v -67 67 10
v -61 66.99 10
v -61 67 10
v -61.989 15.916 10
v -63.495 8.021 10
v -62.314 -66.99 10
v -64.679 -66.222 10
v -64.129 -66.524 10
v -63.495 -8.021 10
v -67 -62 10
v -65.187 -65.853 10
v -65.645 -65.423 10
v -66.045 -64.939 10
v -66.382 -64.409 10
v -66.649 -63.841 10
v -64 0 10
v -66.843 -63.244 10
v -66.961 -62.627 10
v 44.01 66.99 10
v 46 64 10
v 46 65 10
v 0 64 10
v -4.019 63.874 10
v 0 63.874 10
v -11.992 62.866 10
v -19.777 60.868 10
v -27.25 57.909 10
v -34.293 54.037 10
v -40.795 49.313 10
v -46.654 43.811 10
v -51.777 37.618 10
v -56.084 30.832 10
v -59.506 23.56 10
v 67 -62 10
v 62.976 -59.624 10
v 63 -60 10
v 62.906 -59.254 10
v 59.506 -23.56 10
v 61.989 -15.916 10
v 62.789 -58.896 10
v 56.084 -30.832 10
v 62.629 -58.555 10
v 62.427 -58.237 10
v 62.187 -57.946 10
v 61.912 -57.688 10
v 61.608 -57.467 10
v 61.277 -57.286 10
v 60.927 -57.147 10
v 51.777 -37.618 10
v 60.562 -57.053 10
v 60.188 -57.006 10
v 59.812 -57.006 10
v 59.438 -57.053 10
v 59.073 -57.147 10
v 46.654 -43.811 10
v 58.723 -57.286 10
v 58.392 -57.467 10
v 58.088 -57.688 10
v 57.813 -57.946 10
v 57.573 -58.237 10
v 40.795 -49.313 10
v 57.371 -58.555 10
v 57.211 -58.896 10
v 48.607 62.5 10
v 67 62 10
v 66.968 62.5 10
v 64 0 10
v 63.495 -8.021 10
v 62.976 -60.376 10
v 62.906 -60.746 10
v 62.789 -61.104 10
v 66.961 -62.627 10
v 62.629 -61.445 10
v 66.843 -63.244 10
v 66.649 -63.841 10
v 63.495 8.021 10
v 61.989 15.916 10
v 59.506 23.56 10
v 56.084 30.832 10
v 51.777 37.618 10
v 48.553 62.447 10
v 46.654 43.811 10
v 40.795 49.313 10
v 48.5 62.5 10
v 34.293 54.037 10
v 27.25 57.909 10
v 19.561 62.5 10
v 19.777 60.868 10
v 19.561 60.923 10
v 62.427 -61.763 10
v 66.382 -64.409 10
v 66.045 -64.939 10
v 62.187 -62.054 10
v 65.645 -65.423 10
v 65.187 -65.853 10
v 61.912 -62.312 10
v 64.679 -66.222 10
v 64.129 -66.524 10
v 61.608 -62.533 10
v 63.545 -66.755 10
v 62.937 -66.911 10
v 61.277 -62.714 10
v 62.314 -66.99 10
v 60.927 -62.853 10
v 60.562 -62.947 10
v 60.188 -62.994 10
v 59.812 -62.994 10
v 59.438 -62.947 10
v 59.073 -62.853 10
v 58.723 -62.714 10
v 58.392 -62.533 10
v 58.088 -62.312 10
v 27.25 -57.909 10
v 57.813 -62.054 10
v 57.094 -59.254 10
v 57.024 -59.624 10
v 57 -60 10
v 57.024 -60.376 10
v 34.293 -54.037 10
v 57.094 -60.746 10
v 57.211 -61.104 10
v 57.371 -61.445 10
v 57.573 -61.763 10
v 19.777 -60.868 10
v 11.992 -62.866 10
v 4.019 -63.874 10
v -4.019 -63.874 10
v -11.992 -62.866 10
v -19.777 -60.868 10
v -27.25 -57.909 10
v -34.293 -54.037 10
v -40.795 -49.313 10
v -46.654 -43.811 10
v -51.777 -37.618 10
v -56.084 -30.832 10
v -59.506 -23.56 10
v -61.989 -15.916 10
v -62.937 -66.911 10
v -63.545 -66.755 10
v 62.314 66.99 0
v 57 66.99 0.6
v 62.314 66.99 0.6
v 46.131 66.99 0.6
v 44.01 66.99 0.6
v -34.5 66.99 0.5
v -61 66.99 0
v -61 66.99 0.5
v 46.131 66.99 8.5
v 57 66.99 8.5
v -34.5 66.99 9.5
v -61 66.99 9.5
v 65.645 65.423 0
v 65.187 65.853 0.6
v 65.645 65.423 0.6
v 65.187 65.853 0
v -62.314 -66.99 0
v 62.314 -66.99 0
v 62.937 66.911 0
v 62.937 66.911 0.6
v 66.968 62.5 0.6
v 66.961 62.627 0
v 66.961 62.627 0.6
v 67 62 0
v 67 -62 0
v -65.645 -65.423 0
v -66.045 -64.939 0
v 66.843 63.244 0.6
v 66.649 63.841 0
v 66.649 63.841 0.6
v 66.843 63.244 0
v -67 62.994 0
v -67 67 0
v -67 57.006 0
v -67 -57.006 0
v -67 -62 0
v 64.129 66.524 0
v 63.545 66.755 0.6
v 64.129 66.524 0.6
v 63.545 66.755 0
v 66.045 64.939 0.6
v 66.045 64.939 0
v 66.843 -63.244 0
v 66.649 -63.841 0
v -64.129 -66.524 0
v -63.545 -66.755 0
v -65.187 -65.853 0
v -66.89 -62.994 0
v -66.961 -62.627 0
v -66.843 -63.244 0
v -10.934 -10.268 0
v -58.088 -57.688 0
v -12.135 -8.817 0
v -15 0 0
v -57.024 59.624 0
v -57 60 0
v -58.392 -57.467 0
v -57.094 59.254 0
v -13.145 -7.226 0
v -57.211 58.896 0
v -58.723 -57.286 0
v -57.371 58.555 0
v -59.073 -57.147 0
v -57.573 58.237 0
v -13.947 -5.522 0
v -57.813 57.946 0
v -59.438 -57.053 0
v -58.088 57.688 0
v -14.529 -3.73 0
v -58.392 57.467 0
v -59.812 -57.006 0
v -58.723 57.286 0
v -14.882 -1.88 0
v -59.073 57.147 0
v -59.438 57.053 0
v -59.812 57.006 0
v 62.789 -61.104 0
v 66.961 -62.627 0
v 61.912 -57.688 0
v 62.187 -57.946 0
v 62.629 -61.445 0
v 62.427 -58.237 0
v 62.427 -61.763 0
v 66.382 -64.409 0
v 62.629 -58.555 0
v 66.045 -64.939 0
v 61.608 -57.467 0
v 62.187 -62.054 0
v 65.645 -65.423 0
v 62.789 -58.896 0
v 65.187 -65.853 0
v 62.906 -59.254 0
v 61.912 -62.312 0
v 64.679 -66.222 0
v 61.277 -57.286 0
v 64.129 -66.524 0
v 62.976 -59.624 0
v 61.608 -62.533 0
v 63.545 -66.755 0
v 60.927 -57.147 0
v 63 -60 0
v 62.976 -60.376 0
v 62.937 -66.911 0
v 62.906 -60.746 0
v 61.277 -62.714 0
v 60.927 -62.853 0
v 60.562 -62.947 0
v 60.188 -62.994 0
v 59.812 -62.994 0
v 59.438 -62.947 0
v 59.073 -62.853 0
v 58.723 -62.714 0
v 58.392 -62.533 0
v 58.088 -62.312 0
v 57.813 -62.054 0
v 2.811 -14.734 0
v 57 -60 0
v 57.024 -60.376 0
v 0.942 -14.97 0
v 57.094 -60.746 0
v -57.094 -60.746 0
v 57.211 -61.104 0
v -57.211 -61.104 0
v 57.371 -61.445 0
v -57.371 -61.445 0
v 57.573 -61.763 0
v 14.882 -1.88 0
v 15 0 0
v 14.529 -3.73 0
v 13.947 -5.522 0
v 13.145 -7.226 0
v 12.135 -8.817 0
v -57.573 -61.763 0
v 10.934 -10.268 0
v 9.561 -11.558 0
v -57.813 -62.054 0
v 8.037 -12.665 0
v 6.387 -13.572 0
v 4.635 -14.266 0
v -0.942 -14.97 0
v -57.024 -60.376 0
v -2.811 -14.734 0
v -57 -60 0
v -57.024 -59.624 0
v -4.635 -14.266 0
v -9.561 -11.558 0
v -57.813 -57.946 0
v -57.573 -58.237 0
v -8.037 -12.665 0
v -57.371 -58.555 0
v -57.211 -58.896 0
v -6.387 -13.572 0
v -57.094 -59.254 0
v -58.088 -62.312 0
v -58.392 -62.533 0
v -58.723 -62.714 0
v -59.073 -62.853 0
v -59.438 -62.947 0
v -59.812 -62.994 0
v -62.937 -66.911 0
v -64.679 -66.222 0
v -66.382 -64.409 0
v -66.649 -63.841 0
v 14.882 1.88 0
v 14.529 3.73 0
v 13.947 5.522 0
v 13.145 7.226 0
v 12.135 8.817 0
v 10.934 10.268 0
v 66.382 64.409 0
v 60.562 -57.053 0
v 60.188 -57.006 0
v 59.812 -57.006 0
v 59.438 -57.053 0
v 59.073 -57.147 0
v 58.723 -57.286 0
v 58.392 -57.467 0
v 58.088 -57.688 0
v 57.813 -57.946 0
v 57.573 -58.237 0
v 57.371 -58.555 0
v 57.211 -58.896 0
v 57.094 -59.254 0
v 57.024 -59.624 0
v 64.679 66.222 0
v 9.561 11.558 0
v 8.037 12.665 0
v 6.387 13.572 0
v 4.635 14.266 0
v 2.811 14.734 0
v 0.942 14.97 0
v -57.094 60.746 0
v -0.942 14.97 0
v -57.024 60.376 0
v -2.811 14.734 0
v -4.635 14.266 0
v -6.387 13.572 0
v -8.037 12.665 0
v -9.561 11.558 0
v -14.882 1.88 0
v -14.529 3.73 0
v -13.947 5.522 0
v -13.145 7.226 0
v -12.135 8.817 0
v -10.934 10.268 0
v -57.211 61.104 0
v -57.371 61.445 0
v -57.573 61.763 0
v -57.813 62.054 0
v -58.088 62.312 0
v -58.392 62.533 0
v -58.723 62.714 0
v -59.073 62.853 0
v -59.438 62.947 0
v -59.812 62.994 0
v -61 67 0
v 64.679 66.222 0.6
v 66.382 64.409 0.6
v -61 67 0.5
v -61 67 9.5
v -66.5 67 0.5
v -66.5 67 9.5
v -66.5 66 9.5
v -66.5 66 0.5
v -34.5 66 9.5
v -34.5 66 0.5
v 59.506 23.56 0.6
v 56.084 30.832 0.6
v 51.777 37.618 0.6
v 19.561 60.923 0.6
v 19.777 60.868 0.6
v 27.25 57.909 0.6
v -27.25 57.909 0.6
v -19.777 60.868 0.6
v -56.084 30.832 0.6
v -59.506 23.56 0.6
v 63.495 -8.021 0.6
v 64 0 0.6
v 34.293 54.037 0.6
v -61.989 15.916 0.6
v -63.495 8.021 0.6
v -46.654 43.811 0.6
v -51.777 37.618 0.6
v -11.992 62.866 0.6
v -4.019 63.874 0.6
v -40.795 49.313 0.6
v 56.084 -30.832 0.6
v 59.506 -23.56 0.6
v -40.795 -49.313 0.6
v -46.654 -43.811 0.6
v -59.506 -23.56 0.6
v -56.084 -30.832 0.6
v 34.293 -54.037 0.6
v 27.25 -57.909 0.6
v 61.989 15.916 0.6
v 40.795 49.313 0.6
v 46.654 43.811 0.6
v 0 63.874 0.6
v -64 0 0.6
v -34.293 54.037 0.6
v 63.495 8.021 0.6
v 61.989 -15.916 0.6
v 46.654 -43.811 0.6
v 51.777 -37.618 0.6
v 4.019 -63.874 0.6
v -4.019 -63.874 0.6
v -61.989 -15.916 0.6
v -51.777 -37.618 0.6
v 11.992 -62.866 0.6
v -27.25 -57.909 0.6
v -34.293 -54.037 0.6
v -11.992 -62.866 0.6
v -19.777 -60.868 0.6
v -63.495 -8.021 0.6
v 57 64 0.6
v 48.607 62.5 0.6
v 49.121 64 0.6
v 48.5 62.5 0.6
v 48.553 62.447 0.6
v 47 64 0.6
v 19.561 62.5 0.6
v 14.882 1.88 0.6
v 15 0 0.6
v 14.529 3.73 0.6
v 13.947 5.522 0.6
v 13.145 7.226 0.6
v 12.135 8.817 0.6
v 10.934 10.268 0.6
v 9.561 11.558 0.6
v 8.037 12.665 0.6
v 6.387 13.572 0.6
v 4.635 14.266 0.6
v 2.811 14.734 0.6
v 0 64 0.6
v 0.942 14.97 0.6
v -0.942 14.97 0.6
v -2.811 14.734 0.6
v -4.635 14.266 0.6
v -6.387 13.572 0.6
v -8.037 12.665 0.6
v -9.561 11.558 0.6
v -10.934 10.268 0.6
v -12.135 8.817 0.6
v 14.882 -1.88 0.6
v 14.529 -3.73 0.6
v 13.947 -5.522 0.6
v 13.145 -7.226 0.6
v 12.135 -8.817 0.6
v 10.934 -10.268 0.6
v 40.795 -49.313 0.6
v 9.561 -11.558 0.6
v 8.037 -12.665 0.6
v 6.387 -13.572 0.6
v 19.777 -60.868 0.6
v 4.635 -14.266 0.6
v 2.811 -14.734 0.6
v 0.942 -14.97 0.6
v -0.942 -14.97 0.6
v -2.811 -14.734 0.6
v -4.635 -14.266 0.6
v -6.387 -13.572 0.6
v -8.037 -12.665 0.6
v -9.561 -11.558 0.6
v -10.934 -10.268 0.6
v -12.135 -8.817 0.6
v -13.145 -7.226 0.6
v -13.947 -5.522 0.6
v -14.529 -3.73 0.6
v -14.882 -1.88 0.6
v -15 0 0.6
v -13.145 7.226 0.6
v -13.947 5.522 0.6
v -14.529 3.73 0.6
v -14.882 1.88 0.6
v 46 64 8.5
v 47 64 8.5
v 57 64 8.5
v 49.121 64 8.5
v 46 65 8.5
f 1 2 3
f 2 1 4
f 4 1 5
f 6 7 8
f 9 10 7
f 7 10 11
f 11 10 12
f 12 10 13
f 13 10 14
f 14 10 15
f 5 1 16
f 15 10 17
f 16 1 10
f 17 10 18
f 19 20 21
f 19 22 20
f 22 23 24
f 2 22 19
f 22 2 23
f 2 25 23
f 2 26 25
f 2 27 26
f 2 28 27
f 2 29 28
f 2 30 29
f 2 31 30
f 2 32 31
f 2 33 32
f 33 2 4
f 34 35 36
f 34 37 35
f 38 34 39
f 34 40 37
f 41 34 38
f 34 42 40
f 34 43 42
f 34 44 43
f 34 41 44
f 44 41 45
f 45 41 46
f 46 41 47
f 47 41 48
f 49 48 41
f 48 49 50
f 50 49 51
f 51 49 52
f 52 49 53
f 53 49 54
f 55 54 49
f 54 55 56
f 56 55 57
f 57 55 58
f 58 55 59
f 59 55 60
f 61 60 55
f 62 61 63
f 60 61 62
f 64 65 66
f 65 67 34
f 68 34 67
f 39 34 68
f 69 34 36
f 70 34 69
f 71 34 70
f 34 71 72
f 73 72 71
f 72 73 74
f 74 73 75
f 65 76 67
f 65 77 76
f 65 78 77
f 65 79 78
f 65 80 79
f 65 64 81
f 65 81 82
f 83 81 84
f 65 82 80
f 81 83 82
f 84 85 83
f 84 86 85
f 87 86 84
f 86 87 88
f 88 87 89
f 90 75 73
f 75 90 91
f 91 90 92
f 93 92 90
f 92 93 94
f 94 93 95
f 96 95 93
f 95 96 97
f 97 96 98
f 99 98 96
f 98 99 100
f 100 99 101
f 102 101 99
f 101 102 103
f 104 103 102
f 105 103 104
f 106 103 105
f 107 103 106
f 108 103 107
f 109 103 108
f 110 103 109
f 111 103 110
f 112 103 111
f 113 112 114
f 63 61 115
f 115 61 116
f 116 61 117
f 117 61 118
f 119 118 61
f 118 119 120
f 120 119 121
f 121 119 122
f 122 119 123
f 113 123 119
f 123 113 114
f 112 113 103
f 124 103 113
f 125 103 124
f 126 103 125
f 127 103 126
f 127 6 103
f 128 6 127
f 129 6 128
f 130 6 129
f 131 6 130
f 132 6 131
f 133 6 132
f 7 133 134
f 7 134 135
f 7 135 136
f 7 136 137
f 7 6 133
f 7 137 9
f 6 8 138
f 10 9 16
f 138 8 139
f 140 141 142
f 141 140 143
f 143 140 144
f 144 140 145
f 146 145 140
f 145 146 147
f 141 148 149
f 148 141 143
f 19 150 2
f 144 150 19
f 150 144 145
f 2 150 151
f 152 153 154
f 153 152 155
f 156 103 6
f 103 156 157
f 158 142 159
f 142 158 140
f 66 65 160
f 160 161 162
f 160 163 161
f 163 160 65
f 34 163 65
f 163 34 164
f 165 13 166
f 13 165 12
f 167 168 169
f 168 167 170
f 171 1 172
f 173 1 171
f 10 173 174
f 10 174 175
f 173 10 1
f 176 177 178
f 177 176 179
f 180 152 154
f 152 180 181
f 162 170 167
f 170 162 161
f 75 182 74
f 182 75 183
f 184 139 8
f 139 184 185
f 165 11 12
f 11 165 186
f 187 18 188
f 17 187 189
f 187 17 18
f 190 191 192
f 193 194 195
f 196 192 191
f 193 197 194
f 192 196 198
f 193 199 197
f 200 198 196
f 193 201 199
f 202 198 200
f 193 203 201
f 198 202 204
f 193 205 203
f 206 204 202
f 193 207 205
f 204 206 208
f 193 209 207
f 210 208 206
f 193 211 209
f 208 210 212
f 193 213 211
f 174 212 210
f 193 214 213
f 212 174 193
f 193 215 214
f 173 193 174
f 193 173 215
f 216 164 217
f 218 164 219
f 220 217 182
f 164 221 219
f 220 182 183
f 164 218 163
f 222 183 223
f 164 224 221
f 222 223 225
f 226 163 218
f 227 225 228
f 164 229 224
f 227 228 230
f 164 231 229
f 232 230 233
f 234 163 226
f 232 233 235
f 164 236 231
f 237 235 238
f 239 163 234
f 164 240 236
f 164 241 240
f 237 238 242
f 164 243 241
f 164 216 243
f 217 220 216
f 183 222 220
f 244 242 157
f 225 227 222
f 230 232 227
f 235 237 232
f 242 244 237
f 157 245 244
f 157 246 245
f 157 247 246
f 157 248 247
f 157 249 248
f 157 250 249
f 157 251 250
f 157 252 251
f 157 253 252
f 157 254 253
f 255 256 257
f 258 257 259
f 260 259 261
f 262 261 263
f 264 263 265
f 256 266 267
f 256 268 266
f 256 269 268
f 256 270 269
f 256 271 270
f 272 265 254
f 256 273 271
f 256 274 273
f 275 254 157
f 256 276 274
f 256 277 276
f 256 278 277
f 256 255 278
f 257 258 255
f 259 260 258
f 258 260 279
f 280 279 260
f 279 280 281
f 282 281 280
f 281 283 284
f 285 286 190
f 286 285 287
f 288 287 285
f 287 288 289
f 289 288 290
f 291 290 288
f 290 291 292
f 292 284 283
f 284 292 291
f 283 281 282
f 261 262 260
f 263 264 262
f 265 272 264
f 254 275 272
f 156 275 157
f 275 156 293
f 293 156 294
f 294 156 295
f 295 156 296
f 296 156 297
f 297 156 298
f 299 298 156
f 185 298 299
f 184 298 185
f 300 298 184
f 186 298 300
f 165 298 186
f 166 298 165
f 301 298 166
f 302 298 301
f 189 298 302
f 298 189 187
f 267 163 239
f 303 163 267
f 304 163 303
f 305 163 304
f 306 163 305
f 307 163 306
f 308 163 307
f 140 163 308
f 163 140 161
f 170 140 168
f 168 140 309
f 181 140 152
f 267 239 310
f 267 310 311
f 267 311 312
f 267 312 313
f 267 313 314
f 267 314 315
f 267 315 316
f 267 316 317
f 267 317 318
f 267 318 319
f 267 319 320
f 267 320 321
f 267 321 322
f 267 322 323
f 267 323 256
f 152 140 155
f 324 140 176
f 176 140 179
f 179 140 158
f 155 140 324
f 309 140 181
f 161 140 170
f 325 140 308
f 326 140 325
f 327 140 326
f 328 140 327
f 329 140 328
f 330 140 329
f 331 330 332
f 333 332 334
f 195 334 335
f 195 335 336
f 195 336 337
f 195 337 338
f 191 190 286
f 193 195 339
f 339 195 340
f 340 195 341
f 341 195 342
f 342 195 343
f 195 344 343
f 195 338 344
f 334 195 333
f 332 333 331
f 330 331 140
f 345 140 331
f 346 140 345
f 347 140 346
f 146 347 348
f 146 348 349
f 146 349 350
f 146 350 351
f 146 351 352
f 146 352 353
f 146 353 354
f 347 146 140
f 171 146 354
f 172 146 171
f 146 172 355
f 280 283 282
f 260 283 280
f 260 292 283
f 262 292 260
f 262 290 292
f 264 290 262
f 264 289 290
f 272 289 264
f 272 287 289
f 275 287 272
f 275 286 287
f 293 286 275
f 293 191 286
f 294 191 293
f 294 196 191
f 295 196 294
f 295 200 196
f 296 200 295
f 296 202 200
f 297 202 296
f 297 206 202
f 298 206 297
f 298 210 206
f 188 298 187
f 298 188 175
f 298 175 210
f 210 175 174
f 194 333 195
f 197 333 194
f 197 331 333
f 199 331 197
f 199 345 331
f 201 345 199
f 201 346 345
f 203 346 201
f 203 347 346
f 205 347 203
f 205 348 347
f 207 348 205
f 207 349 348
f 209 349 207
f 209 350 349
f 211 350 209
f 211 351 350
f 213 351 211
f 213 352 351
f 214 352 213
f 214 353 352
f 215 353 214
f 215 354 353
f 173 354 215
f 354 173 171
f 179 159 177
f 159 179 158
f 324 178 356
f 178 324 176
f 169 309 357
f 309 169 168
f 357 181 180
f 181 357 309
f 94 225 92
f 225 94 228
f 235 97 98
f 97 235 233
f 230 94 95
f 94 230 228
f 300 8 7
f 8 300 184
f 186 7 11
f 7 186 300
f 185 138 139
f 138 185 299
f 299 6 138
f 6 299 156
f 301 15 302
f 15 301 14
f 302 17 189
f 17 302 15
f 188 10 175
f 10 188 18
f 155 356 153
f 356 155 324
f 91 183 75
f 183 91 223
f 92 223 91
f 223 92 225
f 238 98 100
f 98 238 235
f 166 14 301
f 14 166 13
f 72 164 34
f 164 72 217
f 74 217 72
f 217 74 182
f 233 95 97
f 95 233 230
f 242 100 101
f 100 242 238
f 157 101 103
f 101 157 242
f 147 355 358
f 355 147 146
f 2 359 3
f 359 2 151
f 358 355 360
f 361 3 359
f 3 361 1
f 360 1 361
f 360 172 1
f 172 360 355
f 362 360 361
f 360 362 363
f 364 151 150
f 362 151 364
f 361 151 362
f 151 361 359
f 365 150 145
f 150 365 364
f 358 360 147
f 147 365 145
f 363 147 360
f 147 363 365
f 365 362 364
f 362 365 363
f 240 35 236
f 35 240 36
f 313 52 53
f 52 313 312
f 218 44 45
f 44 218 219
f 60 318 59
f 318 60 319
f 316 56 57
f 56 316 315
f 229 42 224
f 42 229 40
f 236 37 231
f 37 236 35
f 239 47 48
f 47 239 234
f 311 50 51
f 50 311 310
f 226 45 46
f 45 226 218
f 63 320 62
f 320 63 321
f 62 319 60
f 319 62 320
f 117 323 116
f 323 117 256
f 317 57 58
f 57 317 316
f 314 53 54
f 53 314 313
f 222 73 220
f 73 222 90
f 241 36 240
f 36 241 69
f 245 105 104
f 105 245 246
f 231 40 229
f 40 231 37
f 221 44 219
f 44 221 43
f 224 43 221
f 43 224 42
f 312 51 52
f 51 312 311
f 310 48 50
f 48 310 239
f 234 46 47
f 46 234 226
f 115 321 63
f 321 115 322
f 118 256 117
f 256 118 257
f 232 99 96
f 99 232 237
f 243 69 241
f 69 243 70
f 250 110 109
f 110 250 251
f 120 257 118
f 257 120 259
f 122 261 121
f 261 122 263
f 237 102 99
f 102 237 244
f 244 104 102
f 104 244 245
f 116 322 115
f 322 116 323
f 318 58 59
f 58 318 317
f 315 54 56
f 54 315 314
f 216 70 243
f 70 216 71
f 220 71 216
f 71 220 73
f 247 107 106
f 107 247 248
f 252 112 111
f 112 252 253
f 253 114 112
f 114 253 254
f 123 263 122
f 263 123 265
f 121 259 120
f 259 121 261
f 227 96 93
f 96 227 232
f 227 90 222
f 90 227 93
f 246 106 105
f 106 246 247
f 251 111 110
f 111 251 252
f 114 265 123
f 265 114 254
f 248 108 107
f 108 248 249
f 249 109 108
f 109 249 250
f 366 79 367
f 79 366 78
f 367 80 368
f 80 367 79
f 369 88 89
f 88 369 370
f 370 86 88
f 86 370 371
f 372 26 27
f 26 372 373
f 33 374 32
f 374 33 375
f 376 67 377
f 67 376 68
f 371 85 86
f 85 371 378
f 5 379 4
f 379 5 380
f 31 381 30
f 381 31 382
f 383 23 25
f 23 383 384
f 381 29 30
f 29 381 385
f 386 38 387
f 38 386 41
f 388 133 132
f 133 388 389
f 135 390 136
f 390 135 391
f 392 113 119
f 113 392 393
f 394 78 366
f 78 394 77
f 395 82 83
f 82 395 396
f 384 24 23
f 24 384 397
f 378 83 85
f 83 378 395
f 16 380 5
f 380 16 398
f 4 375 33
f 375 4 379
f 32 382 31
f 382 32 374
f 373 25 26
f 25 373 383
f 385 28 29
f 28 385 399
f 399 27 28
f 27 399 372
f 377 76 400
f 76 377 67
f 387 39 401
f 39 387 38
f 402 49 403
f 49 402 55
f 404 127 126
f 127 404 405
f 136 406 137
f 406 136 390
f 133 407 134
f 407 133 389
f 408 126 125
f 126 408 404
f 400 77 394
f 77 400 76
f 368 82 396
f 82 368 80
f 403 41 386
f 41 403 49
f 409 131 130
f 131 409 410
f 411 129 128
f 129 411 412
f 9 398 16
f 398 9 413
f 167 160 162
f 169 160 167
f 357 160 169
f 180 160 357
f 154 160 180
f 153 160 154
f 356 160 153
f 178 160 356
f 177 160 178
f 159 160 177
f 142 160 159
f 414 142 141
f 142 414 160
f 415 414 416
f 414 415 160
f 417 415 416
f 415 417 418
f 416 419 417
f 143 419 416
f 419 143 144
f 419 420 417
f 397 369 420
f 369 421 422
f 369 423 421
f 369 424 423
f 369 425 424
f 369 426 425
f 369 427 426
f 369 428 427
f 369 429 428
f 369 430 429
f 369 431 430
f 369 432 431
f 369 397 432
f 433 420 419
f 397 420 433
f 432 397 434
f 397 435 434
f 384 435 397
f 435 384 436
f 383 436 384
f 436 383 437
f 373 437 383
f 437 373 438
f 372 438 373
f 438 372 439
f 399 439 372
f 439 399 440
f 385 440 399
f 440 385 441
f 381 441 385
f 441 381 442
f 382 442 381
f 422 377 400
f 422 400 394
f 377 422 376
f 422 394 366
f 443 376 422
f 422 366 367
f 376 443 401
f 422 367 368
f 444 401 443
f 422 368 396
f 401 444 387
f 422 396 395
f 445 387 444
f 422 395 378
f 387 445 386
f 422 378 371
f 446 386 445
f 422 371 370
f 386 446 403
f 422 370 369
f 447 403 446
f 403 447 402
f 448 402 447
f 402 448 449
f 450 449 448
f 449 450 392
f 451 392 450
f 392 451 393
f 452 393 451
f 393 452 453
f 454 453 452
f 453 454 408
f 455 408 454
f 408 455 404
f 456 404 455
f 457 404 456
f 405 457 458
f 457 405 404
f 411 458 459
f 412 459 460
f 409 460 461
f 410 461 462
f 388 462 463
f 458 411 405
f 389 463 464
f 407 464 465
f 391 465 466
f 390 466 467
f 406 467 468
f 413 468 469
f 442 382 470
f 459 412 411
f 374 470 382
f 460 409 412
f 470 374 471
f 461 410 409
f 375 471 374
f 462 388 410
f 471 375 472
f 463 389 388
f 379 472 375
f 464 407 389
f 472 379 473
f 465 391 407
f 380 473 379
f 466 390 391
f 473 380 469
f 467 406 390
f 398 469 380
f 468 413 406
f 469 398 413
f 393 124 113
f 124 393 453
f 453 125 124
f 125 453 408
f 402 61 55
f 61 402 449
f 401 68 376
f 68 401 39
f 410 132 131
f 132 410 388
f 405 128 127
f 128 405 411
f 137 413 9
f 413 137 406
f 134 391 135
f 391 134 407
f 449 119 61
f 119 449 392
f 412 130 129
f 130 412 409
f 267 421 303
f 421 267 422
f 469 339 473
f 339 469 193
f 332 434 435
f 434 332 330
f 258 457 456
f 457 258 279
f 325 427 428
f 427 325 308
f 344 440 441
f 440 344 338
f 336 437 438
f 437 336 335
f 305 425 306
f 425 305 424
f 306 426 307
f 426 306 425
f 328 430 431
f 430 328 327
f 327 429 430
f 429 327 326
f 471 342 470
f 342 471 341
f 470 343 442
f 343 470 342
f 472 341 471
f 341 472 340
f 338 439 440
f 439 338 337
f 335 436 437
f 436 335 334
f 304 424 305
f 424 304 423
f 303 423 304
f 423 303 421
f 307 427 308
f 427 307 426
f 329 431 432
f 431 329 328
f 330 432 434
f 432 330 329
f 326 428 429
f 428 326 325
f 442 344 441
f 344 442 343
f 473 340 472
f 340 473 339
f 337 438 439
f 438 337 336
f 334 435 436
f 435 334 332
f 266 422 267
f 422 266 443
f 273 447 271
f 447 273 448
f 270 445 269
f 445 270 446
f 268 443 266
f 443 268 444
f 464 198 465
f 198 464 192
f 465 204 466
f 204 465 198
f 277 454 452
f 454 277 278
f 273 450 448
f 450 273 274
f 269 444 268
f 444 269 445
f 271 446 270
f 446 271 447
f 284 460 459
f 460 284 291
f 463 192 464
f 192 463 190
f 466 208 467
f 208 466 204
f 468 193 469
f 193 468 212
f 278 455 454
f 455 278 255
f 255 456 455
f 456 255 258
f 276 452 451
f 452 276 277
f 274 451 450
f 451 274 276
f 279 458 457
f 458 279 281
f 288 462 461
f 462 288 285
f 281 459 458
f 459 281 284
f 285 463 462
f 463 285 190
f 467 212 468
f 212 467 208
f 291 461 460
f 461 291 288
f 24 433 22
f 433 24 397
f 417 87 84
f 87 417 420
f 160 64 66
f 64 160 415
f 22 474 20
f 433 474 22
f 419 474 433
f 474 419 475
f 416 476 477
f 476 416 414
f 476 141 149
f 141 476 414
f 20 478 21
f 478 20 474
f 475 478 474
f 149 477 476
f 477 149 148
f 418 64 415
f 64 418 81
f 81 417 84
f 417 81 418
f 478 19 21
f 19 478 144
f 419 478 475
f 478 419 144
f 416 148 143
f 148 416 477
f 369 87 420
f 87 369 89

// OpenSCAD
$fn = 50;


difference() {
	union() {
		hull() {
			translate(v = [-62.0000000000, 62.0000000000, 0]) {
				cylinder(h = 10, r = 5);
			}
			translate(v = [62.0000000000, 62.0000000000, 0]) {
				cylinder(h = 10, r = 5);
			}
			translate(v = [-62.0000000000, -62.0000000000, 0]) {
				cylinder(h = 10, r = 5);
			}
			translate(v = [62.0000000000, -62.0000000000, 0]) {
				cylinder(h = 10, r = 5);
			}
		}
		translate(v = [-67.0000000000, 61.0000000000, 0]) {
			cube(size = [6, 6, 10]);
		}
	}
	union() {
		translate(v = [-67.5000000000, -60.0000000000, -250.0000000000]) {
			rotate(a = [0, 0, 0]) {
				difference() {
					union() {
						hull() {
							translate(v = [7.5000000000, 0, 0]) {
								cylinder(h = 250, r = 3.0000000000, r1 = 3.0000000000, r2 = 3.0000000000);
							}
							translate(v = [-7.5000000000, 0, 0]) {
								cylinder(h = 250, r = 3.0000000000, r1 = 3.0000000000, r2 = 3.0000000000);
							}
						}
					}
					union();
				}
			}
		}
		translate(v = [-67.5000000000, 60.0000000000, -250.0000000000]) {
			rotate(a = [0, 0, 0]) {
				difference() {
					union() {
						hull() {
							translate(v = [7.5000000000, 0, 0]) {
								cylinder(h = 250, r = 3.0000000000, r1 = 3.0000000000, r2 = 3.0000000000);
							}
							translate(v = [-7.5000000000, 0, 0]) {
								cylinder(h = 250, r = 3.0000000000, r1 = 3.0000000000, r2 = 3.0000000000);
							}
						}
					}
					union();
				}
			}
		}
		translate(v = [-66.5000000000, 66.0000000000, 0.5000000000]) {
			cube(size = [32, 1, 9.0000000000]);
		}
		translate(v = [60.0000000000, -60.0000000000, -50.0000000000]) {
			cylinder(h = 100, r = 3.0000000000);
		}
		translate(v = [0, 0, 0.6000000000]) {
			cylinder(h = 12.4000000000, r = 64.0000000000);
		}
		translate(v = [0, 0, -5.0000000000]) {
			cylinder(h = 10, r = 15.0000000000);
		}
		translate(v = [0.0000000000, 62.5000000000, 0.6000000000]) {
			cube(size = [67.0000000000, 1.5000000000, 12.4000000000]);
		}
		translate(v = [57.0000000000, 62.5000000000, 0.6000000000]) {
			cube(size = [10, 4.5000000000, 12.4000000000]);
		}
		translate(v = [46.0000000000, 62.5000000000, 8.5000000000]) {
			cube(size = [21, 4.5000000000, 1.5000000000]);
		}
		translate(v = [43.2500000000, 67.7500000000, 0.6000000000]) {
			rotate(a = [0, 0, -45]) {
				cube(size = [7.5000000000, 1.5000000000, 12.4000000000]);
			}
		}
		translate(v = [12.0610000000, 60.5000000000, 0.6000000000]) {
			cube(size = [7.5000000000, 2, 9.4000000000]);
		}
	}
}
